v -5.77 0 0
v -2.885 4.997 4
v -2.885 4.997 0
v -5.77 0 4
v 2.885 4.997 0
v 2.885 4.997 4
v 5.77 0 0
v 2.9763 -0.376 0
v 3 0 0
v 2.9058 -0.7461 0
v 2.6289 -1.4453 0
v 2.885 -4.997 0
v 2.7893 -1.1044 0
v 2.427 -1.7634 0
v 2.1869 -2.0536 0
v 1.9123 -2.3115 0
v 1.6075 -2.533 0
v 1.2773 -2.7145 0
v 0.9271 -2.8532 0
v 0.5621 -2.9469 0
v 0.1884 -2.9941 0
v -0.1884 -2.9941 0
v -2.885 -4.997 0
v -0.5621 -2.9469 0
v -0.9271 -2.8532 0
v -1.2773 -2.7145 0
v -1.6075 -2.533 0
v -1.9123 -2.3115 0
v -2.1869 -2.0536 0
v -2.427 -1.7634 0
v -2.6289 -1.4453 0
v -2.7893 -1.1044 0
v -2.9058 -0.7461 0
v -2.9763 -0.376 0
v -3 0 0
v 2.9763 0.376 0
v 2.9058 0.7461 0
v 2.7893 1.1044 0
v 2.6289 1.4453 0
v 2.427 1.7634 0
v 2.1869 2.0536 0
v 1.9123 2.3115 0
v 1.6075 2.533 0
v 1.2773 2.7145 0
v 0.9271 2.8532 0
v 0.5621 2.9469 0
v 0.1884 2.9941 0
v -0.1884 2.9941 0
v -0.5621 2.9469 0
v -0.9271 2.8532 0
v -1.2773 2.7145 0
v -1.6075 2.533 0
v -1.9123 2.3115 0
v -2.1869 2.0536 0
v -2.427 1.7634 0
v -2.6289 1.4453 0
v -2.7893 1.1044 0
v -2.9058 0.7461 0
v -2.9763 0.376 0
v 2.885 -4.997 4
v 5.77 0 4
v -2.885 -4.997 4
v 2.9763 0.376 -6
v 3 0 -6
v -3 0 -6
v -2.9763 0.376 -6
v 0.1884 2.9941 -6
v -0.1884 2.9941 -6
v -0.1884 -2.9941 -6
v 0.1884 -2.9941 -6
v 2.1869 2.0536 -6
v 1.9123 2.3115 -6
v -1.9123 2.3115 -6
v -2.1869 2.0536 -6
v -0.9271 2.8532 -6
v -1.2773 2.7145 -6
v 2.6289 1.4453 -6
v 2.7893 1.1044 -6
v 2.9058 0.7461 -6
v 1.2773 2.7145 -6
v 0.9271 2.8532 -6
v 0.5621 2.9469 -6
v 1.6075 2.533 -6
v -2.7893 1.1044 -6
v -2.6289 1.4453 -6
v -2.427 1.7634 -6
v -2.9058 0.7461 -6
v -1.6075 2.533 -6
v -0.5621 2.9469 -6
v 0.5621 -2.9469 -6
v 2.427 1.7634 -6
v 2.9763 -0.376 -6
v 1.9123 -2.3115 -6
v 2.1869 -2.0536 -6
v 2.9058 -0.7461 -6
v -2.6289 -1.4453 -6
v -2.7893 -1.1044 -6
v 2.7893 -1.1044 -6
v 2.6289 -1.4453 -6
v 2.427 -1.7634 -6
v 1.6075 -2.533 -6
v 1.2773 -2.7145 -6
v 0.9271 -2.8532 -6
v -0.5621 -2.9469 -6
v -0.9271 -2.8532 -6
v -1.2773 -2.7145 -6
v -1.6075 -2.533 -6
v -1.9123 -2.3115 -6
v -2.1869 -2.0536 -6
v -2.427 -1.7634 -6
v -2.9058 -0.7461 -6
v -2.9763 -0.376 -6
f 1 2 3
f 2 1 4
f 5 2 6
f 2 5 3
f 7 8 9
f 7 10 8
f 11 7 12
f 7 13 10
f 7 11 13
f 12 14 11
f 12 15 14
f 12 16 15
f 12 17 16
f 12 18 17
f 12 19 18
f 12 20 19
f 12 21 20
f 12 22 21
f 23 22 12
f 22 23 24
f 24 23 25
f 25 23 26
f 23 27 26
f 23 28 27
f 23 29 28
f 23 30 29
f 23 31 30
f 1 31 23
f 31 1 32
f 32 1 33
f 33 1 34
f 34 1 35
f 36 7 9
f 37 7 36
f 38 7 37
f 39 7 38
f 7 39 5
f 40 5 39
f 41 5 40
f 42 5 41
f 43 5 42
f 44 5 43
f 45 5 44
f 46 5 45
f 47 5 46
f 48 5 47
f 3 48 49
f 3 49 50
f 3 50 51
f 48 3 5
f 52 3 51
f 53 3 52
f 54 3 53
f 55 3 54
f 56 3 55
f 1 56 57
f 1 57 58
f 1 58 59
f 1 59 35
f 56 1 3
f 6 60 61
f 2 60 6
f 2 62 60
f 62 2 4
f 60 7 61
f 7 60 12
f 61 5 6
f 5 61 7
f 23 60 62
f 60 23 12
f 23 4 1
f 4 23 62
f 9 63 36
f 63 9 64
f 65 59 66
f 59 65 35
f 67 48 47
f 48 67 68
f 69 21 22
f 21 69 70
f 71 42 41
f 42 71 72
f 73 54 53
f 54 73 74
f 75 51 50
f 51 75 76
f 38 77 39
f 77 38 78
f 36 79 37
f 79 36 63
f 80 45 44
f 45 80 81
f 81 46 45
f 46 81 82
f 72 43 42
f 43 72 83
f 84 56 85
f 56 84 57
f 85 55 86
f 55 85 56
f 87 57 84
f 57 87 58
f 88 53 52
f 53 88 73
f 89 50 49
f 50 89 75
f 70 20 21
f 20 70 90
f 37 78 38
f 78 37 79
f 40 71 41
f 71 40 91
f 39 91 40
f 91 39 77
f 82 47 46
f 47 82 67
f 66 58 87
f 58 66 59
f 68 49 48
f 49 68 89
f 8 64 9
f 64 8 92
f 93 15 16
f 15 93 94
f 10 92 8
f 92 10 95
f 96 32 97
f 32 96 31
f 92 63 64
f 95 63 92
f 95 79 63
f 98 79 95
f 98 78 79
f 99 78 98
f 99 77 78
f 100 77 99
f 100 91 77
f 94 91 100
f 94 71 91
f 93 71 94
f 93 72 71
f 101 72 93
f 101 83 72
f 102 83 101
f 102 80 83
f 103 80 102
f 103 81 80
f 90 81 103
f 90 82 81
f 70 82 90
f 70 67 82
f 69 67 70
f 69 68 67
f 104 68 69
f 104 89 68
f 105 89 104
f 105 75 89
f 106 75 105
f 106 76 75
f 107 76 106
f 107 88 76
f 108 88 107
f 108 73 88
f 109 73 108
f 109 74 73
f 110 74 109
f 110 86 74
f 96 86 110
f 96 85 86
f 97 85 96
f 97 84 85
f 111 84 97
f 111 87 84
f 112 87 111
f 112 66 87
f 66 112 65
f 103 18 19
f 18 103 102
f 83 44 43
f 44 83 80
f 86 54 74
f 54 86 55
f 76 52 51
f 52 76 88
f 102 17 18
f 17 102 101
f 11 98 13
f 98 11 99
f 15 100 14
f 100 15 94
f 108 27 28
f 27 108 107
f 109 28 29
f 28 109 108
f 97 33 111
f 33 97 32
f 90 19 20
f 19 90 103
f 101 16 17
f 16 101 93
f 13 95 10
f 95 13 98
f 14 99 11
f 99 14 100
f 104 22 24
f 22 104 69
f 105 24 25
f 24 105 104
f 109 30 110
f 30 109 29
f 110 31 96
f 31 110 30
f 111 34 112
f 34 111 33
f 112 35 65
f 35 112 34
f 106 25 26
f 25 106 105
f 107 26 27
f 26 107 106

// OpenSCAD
$fn = 50;


difference() {
	union() {
		translate(v = [0, 0, 0]) {
			rotate(a = [0, 0, 0]) {
				translate(v = [0, 0, 0]) {
					rotate(a = [0, 0, 0]) {
						linear_extrude(height = 4) {
							polygon(points = [[5.7700000000, 0.0000000000], [2.8850000000, 4.9969665798], [-2.8850000000, 4.9969665798], [-5.7700000000, 0.0000000000], [-2.8850000000, -4.9969665798], [2.8850000000, -4.9969665798]]);
						}
					}
				}
			}
		}
		translate(v = [0, 0, -6]) {
			rotate(a = [0, 0, 0]) {
				cylinder(h = 6, r = 3.0000000000);
			}
		}
	}
	union();
}
